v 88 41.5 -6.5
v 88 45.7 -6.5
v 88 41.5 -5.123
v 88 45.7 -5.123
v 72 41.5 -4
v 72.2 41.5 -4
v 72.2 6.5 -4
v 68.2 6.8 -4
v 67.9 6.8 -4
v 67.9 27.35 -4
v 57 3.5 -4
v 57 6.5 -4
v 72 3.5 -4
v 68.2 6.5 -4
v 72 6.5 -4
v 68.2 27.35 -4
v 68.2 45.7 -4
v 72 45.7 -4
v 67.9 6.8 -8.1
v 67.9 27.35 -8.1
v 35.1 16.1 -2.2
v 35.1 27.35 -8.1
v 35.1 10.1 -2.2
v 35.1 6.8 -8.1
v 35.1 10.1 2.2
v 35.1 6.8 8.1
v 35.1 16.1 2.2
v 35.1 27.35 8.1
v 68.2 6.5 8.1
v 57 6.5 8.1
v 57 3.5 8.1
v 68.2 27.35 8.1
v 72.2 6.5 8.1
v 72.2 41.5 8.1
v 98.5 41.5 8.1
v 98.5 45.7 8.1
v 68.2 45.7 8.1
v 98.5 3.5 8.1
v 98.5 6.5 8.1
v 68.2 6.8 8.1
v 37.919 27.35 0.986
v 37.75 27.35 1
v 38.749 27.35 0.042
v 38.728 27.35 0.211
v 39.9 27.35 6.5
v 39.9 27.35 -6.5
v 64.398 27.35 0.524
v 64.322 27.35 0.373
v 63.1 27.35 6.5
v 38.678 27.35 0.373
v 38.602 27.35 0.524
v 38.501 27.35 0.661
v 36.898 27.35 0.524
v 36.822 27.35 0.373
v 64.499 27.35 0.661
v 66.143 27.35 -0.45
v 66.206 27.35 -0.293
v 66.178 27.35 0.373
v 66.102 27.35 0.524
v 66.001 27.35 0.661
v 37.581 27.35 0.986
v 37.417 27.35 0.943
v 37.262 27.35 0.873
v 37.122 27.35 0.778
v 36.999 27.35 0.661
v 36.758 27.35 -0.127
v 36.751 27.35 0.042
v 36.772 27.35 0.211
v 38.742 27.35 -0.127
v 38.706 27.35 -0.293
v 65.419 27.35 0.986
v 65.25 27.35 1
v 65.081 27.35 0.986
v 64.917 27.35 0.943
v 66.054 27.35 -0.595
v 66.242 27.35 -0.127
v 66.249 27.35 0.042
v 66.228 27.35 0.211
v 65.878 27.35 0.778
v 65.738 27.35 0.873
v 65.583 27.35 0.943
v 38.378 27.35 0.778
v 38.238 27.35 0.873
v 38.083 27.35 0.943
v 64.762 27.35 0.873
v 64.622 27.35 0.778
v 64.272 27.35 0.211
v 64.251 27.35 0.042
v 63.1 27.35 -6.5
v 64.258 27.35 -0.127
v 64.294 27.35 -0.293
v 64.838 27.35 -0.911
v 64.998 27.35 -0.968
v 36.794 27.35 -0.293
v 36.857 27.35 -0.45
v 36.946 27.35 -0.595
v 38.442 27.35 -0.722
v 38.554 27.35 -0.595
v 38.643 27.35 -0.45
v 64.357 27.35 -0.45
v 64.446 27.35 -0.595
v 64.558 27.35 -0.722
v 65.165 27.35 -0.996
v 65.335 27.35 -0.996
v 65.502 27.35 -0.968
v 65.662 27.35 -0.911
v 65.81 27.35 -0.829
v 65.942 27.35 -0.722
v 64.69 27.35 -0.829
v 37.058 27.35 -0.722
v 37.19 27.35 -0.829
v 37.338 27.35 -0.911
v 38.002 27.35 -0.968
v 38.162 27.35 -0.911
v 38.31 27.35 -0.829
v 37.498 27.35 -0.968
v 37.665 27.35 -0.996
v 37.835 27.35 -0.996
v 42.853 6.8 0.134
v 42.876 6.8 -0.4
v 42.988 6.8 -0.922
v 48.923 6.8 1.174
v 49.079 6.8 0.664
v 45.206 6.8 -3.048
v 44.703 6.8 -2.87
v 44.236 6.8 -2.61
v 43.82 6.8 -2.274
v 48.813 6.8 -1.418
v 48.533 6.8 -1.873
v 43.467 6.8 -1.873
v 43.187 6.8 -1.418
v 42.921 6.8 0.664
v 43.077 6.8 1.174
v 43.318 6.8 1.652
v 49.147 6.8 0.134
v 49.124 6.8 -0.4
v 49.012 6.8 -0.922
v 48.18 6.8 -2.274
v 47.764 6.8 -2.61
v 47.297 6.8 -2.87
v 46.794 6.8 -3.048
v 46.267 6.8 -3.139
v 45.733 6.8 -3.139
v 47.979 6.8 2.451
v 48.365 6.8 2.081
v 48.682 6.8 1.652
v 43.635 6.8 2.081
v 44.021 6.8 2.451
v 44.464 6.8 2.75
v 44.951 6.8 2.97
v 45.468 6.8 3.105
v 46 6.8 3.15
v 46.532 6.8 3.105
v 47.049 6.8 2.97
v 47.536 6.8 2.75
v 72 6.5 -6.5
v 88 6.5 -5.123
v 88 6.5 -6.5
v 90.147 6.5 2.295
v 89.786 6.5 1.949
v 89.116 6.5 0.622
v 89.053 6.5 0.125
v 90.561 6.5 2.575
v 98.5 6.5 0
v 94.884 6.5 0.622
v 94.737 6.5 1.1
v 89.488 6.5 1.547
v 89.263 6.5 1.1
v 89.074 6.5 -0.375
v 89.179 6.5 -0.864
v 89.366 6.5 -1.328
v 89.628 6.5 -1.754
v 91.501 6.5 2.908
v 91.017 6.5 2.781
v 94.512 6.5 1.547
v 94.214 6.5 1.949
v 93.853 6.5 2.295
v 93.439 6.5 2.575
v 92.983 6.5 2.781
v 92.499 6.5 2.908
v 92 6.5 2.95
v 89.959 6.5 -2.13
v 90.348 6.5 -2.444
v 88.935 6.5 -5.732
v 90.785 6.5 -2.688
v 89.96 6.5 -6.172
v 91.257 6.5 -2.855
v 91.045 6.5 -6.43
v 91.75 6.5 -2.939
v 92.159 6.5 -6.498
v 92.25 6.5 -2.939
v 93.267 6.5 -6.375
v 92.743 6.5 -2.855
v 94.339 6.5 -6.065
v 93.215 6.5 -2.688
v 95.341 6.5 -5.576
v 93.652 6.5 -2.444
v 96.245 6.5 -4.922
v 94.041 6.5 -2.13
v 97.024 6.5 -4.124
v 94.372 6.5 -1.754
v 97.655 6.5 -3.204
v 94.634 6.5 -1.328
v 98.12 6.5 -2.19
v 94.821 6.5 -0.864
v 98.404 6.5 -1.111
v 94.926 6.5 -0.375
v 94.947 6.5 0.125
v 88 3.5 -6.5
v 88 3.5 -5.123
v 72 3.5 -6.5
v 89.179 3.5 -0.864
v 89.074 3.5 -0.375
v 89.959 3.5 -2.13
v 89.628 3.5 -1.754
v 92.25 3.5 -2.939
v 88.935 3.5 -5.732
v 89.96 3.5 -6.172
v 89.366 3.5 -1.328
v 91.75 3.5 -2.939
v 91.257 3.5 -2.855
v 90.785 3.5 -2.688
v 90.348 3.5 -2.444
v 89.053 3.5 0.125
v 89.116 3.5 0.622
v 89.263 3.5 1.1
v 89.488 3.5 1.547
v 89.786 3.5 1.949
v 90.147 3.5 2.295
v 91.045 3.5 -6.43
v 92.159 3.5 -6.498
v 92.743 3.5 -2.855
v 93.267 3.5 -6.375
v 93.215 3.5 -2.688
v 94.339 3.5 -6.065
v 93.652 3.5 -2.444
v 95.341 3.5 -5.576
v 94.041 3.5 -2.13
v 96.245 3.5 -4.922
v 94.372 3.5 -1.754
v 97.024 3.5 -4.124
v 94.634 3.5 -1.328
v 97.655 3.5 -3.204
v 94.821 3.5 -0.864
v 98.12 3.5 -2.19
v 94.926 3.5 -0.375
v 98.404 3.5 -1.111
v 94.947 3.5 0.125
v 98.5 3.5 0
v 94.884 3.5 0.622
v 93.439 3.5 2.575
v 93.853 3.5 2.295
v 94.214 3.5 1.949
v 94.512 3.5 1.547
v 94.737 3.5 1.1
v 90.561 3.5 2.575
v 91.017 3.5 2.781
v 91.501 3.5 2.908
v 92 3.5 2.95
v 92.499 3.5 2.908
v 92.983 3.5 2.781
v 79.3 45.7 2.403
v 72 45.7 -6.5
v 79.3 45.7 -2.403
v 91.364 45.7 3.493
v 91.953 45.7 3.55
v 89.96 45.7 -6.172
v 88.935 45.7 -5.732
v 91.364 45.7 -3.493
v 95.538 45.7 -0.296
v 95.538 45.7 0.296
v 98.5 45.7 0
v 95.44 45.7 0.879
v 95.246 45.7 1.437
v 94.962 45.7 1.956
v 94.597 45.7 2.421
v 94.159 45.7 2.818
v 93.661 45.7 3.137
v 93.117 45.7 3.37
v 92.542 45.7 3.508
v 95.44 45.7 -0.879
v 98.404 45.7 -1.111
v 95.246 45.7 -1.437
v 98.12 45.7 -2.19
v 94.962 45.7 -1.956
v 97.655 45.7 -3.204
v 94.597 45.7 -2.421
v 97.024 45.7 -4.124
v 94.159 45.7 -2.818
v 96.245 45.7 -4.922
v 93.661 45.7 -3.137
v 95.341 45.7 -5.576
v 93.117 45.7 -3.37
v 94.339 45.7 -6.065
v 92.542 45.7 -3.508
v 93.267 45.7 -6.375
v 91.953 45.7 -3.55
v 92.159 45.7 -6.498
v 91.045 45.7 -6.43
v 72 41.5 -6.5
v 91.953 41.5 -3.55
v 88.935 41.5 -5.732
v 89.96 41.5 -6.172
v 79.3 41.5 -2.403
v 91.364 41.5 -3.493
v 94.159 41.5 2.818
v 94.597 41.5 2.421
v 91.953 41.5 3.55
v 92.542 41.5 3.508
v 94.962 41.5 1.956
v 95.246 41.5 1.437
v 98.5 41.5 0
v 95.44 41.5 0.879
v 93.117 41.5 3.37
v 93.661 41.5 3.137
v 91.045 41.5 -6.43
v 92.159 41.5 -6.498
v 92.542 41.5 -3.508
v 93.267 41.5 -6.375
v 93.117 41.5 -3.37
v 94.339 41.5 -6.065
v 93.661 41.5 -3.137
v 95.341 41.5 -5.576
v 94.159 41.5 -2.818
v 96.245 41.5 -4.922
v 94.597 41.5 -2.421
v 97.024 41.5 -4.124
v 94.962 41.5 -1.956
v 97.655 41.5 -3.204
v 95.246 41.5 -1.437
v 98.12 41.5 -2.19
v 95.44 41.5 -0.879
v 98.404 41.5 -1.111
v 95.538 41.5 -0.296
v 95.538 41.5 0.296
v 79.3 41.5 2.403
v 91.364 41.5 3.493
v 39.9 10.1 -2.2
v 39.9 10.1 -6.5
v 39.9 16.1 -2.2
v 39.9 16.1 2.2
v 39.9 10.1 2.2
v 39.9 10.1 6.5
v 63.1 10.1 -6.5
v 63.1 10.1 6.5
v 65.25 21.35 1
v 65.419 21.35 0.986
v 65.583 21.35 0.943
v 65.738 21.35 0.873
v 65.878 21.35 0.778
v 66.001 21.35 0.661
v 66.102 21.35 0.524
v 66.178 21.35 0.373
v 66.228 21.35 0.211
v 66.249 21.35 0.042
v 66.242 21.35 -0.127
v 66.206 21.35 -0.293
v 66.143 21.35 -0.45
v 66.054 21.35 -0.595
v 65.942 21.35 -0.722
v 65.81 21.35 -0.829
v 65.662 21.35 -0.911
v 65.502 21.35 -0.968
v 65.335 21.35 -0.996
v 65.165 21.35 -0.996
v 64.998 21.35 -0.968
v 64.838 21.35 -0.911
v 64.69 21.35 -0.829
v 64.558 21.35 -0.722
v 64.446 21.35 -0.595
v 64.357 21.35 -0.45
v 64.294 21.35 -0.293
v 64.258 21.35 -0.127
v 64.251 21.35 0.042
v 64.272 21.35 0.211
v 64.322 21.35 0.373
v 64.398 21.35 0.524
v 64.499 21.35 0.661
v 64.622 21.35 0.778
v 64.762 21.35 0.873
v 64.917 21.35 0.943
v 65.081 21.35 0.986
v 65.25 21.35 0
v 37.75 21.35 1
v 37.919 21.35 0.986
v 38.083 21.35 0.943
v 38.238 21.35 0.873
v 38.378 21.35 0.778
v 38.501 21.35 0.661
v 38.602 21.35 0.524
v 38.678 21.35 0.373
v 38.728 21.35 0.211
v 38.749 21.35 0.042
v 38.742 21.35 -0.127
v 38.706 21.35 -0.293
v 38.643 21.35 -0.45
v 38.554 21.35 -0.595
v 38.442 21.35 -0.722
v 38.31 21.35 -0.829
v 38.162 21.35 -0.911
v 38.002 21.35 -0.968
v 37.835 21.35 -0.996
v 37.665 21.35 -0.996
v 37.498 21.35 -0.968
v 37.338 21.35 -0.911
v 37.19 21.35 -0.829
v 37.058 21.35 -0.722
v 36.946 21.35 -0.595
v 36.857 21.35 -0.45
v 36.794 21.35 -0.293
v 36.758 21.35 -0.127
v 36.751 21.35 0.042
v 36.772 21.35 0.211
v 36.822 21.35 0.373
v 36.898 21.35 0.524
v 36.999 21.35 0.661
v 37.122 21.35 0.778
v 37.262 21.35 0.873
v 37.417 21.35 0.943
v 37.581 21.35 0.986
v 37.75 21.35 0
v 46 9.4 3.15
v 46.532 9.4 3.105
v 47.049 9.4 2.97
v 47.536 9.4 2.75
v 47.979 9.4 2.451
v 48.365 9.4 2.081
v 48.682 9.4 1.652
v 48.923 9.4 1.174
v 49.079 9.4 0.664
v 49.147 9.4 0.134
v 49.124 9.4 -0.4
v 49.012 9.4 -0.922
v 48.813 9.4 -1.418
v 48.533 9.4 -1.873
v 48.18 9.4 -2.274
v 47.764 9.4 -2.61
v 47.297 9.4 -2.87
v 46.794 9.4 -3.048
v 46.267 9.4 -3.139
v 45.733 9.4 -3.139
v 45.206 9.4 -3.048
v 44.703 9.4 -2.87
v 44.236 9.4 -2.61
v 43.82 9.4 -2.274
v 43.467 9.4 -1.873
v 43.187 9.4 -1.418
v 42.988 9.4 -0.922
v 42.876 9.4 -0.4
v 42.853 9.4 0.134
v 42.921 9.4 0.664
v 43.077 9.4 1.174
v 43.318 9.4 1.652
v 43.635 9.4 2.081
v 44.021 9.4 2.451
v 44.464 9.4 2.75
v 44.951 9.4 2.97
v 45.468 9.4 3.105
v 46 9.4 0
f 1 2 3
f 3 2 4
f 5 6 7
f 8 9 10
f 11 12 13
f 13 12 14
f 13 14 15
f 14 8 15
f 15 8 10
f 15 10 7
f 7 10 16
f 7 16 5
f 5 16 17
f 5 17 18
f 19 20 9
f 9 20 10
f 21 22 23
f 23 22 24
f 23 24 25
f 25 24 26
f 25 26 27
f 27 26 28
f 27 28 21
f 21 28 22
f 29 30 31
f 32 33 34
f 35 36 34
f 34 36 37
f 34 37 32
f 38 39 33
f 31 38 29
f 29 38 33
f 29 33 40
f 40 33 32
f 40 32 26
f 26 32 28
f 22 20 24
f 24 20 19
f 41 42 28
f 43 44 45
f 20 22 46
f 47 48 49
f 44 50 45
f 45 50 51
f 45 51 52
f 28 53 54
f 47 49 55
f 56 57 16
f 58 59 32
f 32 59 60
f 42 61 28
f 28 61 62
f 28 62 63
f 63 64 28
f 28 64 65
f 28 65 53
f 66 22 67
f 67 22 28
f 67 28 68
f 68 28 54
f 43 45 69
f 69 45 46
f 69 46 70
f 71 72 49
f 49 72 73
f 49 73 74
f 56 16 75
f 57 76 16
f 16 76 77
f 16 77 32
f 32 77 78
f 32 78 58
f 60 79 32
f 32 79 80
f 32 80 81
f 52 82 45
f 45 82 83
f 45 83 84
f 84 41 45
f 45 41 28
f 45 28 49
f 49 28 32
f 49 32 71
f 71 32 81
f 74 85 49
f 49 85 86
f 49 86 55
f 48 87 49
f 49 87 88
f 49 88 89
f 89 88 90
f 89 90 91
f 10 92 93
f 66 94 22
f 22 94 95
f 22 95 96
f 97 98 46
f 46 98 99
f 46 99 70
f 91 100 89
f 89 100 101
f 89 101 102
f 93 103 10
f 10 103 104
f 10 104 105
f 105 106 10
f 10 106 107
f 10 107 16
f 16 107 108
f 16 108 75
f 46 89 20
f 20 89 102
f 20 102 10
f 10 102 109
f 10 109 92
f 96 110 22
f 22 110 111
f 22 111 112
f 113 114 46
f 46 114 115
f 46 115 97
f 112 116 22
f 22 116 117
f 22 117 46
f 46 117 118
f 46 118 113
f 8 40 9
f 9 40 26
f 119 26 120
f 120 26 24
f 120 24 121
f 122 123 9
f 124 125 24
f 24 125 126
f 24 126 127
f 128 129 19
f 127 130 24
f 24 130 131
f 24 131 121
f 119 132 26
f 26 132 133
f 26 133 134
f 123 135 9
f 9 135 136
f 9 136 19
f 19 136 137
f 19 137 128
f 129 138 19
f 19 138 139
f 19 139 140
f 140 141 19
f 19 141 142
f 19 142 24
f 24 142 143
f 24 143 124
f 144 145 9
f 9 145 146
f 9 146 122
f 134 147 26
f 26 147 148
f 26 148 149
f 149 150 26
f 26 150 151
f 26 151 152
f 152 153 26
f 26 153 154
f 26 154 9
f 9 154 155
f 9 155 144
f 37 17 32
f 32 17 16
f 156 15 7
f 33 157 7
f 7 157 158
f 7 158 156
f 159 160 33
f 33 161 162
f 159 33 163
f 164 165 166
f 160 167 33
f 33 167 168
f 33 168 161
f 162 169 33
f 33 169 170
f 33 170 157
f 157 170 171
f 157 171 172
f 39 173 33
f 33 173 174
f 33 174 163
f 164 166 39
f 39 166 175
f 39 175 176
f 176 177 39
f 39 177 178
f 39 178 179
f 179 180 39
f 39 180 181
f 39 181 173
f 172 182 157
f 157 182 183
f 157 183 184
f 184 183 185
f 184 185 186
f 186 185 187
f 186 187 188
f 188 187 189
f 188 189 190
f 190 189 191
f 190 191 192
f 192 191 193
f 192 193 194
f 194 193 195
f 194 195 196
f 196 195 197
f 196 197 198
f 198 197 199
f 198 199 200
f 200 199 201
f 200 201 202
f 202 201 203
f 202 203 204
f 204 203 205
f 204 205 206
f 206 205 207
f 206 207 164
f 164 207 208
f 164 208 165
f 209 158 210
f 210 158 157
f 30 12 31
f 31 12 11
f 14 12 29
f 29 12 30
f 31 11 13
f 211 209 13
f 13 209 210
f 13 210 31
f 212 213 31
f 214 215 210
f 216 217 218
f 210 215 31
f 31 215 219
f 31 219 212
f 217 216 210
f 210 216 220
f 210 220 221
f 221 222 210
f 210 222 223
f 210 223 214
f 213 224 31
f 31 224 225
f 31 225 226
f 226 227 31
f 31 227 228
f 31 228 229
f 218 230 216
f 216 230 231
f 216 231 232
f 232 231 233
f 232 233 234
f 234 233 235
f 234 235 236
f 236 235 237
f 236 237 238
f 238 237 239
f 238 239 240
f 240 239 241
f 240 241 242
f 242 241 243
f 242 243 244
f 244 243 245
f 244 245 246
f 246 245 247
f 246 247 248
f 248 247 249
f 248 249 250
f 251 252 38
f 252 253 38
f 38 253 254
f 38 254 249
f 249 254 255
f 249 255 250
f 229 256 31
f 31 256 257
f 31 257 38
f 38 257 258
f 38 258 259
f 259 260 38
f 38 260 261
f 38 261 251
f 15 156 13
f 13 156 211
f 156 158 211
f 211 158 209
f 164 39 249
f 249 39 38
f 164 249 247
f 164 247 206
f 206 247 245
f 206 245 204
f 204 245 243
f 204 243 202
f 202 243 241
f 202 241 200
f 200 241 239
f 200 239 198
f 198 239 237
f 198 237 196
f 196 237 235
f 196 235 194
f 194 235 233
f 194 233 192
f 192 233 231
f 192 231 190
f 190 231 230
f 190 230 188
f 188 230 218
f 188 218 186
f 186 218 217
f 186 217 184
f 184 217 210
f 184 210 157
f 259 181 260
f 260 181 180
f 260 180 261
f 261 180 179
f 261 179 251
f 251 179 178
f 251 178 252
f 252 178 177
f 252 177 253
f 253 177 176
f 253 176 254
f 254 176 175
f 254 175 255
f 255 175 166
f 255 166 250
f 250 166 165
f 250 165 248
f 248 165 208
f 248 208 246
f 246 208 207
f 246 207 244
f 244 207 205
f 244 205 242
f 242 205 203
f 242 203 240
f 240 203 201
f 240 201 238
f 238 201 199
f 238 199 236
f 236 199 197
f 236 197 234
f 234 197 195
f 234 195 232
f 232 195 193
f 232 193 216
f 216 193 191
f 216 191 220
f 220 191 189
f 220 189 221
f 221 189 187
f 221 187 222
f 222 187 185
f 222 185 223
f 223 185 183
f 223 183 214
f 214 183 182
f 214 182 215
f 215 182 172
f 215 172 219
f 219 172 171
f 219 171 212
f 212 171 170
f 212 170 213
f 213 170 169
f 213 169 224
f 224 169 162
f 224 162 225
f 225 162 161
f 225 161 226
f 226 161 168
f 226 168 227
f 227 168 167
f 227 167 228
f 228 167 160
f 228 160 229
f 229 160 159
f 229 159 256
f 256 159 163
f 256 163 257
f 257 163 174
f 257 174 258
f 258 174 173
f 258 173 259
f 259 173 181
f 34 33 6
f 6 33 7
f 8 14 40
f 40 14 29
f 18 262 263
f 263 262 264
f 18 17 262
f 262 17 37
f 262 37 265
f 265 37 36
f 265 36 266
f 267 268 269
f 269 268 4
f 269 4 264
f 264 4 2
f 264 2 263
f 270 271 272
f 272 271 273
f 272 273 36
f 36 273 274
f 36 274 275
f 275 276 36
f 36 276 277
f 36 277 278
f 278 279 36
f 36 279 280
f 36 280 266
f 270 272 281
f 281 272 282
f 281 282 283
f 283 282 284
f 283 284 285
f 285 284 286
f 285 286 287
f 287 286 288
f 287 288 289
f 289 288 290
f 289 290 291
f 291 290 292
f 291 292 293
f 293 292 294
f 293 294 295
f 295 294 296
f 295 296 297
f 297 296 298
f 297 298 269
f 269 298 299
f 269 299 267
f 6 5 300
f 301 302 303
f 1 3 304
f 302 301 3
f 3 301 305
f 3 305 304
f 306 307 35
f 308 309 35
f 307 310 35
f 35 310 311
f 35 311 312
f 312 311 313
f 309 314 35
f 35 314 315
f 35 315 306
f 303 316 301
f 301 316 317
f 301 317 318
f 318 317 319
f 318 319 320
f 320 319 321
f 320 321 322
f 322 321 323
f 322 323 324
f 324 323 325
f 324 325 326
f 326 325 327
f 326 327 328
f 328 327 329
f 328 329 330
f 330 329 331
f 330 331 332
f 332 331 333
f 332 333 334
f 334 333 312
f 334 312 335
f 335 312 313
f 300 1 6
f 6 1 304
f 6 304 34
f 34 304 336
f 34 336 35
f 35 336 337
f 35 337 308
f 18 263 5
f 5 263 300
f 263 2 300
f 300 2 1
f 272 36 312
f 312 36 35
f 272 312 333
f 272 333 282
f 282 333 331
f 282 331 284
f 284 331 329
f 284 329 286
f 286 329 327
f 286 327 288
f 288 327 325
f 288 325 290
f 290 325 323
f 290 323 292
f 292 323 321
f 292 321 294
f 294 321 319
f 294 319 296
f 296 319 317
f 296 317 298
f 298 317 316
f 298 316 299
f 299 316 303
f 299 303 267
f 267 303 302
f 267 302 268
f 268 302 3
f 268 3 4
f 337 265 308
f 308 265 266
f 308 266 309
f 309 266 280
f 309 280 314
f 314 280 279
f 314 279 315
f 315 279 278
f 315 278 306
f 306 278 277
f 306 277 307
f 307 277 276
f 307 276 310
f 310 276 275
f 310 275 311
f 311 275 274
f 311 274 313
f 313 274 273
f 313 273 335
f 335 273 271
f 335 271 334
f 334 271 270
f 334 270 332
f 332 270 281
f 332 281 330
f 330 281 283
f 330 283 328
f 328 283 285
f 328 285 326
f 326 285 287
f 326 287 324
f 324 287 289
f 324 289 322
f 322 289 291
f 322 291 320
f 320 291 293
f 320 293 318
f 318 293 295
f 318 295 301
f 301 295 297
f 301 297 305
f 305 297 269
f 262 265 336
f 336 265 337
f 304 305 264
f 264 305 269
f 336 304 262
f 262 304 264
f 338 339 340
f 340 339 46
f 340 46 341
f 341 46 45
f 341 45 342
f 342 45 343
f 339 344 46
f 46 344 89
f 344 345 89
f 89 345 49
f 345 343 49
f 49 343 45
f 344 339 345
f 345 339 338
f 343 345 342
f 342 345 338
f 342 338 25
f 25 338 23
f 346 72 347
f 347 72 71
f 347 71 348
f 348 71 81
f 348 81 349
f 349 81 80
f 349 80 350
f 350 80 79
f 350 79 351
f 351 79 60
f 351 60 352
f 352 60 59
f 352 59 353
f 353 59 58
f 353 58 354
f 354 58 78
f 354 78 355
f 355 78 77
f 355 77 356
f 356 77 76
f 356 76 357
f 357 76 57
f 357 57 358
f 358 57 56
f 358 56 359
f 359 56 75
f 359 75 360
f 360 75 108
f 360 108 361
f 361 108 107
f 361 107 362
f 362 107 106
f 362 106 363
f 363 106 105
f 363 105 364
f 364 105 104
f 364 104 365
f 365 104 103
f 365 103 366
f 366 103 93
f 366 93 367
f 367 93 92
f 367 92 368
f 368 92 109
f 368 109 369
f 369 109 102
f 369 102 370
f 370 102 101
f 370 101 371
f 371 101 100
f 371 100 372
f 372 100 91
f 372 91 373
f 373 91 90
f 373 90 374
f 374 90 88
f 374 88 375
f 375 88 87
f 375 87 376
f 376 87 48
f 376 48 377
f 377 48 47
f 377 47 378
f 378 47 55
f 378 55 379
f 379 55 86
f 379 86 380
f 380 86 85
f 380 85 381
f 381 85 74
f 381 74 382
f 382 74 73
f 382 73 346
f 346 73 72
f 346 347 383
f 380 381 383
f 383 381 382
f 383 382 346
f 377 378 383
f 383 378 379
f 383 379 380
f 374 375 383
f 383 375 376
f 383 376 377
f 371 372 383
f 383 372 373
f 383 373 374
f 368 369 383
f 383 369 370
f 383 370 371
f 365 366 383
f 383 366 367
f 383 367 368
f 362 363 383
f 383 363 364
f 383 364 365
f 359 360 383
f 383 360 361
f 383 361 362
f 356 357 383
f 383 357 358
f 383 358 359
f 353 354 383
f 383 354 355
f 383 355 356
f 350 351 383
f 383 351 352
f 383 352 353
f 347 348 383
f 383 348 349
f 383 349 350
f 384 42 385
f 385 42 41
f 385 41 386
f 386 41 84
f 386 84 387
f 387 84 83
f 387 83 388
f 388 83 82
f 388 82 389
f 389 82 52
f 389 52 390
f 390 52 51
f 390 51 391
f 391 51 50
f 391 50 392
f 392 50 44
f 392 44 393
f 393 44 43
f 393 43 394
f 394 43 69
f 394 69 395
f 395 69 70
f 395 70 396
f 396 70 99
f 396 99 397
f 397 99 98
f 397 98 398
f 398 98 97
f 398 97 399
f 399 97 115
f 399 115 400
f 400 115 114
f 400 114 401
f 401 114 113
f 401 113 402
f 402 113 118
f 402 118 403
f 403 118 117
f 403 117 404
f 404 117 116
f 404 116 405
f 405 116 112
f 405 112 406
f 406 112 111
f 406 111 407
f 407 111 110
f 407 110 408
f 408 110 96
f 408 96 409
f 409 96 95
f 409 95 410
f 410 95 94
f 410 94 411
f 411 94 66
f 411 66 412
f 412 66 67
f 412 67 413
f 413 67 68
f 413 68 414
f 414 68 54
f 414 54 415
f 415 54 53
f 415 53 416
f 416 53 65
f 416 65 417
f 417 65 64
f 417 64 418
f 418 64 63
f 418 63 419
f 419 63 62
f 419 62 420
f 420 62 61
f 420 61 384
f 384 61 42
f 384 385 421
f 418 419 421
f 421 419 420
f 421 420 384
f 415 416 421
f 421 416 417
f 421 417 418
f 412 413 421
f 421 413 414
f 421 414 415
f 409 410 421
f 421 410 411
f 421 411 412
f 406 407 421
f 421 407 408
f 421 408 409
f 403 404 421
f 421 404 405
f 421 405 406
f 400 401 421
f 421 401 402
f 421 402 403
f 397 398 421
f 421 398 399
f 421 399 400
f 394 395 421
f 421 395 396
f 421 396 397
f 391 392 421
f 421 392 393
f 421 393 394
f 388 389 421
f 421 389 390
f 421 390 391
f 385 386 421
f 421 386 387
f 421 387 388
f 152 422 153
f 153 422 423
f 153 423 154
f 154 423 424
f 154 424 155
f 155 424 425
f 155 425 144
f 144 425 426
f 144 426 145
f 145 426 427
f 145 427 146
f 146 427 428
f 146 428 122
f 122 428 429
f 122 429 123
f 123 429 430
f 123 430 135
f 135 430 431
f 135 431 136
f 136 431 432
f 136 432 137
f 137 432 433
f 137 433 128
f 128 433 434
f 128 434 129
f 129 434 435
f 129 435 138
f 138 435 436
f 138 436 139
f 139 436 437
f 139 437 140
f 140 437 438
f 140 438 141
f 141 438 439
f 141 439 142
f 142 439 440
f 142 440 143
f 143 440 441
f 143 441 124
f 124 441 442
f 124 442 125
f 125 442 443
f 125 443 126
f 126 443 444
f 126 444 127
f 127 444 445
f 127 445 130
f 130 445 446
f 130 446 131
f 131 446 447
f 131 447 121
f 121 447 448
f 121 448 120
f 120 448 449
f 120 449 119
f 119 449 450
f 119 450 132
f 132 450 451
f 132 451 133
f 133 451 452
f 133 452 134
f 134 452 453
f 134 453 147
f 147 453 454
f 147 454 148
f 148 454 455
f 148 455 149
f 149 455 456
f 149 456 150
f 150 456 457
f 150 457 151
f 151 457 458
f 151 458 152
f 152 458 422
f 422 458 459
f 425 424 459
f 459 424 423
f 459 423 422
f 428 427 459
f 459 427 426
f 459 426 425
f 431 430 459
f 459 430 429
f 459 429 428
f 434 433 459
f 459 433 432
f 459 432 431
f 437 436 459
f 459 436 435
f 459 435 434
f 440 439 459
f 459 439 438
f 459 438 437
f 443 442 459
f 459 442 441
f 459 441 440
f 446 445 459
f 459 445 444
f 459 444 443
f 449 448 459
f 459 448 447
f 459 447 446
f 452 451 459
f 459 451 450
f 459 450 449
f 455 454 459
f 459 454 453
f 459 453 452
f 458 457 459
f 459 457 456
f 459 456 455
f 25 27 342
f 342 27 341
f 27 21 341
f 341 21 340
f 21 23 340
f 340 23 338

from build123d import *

# Parameters (mm, degrees)
BOSS_EXTRUDE1_START  = 17.075
SKETCH1_W            = 32.8
SKETCH1_H            = 16.2
BOSS_EXTRUDE1_DEPTH  = 10.275
BOSS_EXTRUDE2_START  = 5
SKETCH2_W            = 31
SKETCH2_H            = 12.1
BOSS_EXTRUDE2_DEPTH  = 1.5
BOSS_EXTRUDE3_START  = 5
SKETCH3_W            = 16
SKETCH3_H            = 14.6
BOSS_EXTRUDE3_DEPTH  = 1.5
BOSS_EXTRUDE4_START  = 5
SKETCH4_W            = 10.5
SKETCH4_H            = 8.1
BOSS_EXTRUDE4_DEPTH  = 1.5
BOSS_EXTRUDE5_START  = 5
SKETCH5_R            = 6.5
BOSS_EXTRUDE5_DEPTH  = 1.5
CUT_EXTRUDE1_START   = 5
SKETCH6_R            = 2.95
CUT_EXTRUDE1_DEPTH   = 1.5
BOSS_EXTRUDE6_START  = 70.2
SKETCH7_W            = 12.1
SKETCH7_H            = 42.2
BOSS_EXTRUDE6_DEPTH  = 2
BOSS_EXTRUDE7_START  = 68.05
SKETCH8_W            = 12.1
SKETCH8_H            = 20.55
BOSS_EXTRUDE7_DEPTH  = 1.15
BOSS_EXTRUDE8_START  = 43.6
SKETCH9_W            = 19.8
SKETCH9_H            = 12.1
BOSS_EXTRUDE8_DEPTH  = 2.1
BOSS_EXTRUDE9_START  = 43.6
SKETCH10_W           = 16
SKETCH10_H           = 14.6
BOSS_EXTRUDE9_DEPTH  = 2.1
BOSS_EXTRUDE10_START = 43.6
SKETCH11_W           = 10.5
SKETCH11_H           = 8.1
BOSS_EXTRUDE10_DEPTH = 2.1
BOSS_EXTRUDE11_START = 43.6
SKETCH12_R           = 6.5
BOSS_EXTRUDE11_DEPTH = 2.1
CUT_EXTRUDE2_START   = 43.6
SKETCH13_R           = 3.55
CUT_EXTRUDE2_DEPTH   = 2.1
CUT_EXTRUDE3_START   = 43.6
CUT_EXTRUDE3_DEPTH   = 2.1
CUT_EXTRUDE4_START   = 18.725
SKETCH15_W           = 23.2
SKETCH15_H           = 13
CUT_EXTRUDE4_DEPTH   = 8.625
CUT_EXTRUDE5_START   = 24.35
SKETCH16_R           = 1
CUT_EXTRUDE5_DEPTH   = 3
CUT_EXTRUDE6_START   = 24.35
SKETCH17_R           = 1
CUT_EXTRUDE6_DEPTH   = 3
CUT_EXTRUDE7_START   = 8.1
SKETCH18_R           = 3.15
CUT_EXTRUDE7_DEPTH   = 1.3
CUT_EXTRUDE8_START   = 37.5
SKETCH19_W           = 4.4
SKETCH19_H           = 6
CUT_EXTRUDE8_DEPTH   = 2.4


with BuildPart() as part:
    # Sketch1 → Boss-Extrude1 (new, symmetric)
    with BuildSketch(Plane(origin=(0, 0, 0), x_dir=(1, 0, 0), z_dir=(0, 1, 0)).offset(BOSS_EXTRUDE1_START)):
        with Locations((51.5, 0)):
            Rectangle(SKETCH1_W, SKETCH1_H)
    extrude(amount=BOSS_EXTRUDE1_DEPTH, both=True)



with BuildPart() as body_2:
    # Sketch2 → Boss-Extrude2 (new, symmetric)
    with BuildSketch(Plane(origin=(0, 0, 0), x_dir=(1, 0, 0), z_dir=(0, 1, 0)).offset(BOSS_EXTRUDE2_START)):
        with Locations((72.5, -2.05)):
            Rectangle(SKETCH2_W, SKETCH2_H)
    extrude(amount=BOSS_EXTRUDE2_DEPTH, both=True)

    # Sketch3 → Boss-Extrude3 (add, symmetric)
    with BuildSketch(Plane(origin=(0, 0, 0), x_dir=(1, 0, 0), z_dir=(0, 1, 0)).offset(BOSS_EXTRUDE3_START)):
        with Locations((80, -0.8)):
            Rectangle(SKETCH3_W, SKETCH3_H)
    extrude(amount=BOSS_EXTRUDE3_DEPTH, both=True)

    # Sketch4 → Boss-Extrude4 (add, symmetric)
    with BuildSketch(Plane(origin=(0, 0, 0), x_dir=(1, 0, 0), z_dir=(0, 1, 0)).offset(BOSS_EXTRUDE4_START)):
        with Locations((93.25, -4.05)):
            Rectangle(SKETCH4_W, SKETCH4_H)
    extrude(amount=BOSS_EXTRUDE4_DEPTH, both=True)

    # Sketch5 → Boss-Extrude5 (add, symmetric)
    with BuildSketch(Plane(origin=(0, 0, 0), x_dir=(1, 0, 0), z_dir=(0, 1, 0)).offset(BOSS_EXTRUDE5_START)):
        with Locations((92, 0)):
            Circle(SKETCH5_R)
    extrude(amount=BOSS_EXTRUDE5_DEPTH, both=True)

    # Sketch6 → Cut-Extrude1 (cut, symmetric)
    with BuildSketch(Plane(origin=(0, 0, 0), x_dir=(1, 0, 0), z_dir=(0, 1, 0)).offset(CUT_EXTRUDE1_START)):
        with Locations(Location((92, 0, 0), (0, 0, 270))):
            Circle(SKETCH6_R)
    extrude(amount=CUT_EXTRUDE1_DEPTH, both=True, mode=Mode.SUBTRACT)

    # Sketch7 → Boss-Extrude6 (add, symmetric)
    with BuildSketch(Plane(origin=(0, 0, 0), x_dir=(0, 0, -1), z_dir=(1, 0, 0)).offset(BOSS_EXTRUDE6_START)):
        with Locations((-2.05, 24.6)):
            Rectangle(SKETCH7_W, SKETCH7_H)
    extrude(amount=BOSS_EXTRUDE6_DEPTH, both=True)


with BuildPart() as part_1:
    add(part.part)

    add(body_2.part)  # Boss-Extrude7 merges body 2
    # Sketch8 → Boss-Extrude7 (add, symmetric)
    with BuildSketch(Plane(origin=(0, 0, 0), x_dir=(0, 0, -1), z_dir=(1, 0, 0)).offset(BOSS_EXTRUDE7_START)):
        with Locations((-2.05, 17.075)):
            Rectangle(SKETCH8_W, SKETCH8_H)
    extrude(amount=BOSS_EXTRUDE7_DEPTH, both=True)

    # Sketch9 → Boss-Extrude8 (add, symmetric)
    with BuildSketch(Plane(origin=(0, 0, 0), x_dir=(1, 0, 0), z_dir=(0, 1, 0)).offset(BOSS_EXTRUDE8_START)):
        with Locations((78.1, -2.05)):
            Rectangle(SKETCH9_W, SKETCH9_H)
    extrude(amount=BOSS_EXTRUDE8_DEPTH, both=True)

    # Sketch10 → Boss-Extrude9 (add, symmetric)
    with BuildSketch(Plane(origin=(0, 0, 0), x_dir=(1, 0, 0), z_dir=(0, 1, 0)).offset(BOSS_EXTRUDE9_START)):
        with Locations((80, -0.8)):
            Rectangle(SKETCH10_W, SKETCH10_H)
    extrude(amount=BOSS_EXTRUDE9_DEPTH, both=True)

    # Sketch11 → Boss-Extrude10 (add, symmetric)
    with BuildSketch(Plane(origin=(0, 0, 0), x_dir=(1, 0, 0), z_dir=(0, 1, 0)).offset(BOSS_EXTRUDE10_START)):
        with Locations((93.25, -4.05)):
            Rectangle(SKETCH11_W, SKETCH11_H)
    extrude(amount=BOSS_EXTRUDE10_DEPTH, both=True)

    # Sketch12 → Boss-Extrude11 (add, symmetric)
    with BuildSketch(Plane(origin=(0, 0, 0), x_dir=(1, 0, 0), z_dir=(0, 1, 0)).offset(BOSS_EXTRUDE11_START)):
        with Locations((92, 0)):
            Circle(SKETCH12_R)
    extrude(amount=BOSS_EXTRUDE11_DEPTH, both=True)

    # Sketch13 → Cut-Extrude2 (cut, symmetric)
    with BuildSketch(Plane(origin=(0, 0, 0), x_dir=(1, 0, 0), z_dir=(0, 1, 0)).offset(CUT_EXTRUDE2_START)):
        with Locations(Location((92, 0, 0), (0, 0, 270))):
            Circle(SKETCH13_R)
    extrude(amount=CUT_EXTRUDE2_DEPTH, both=True, mode=Mode.SUBTRACT)

    # Sketch14 → Cut-Extrude3 (cut, symmetric)
    with BuildSketch(Plane(origin=(0, 0, 0), x_dir=(1, 0, 0), z_dir=(0, 1, 0)).offset(CUT_EXTRUDE3_START)):
        Polygon((92, 3.55), (79.3, 2.403281405), (79.3, -2.403281405), (92, -3.55), align=None)
    extrude(amount=CUT_EXTRUDE3_DEPTH, both=True, mode=Mode.SUBTRACT)

    # Sketch15 → Cut-Extrude4 (cut, symmetric)
    with BuildSketch(Plane(origin=(0, 0, 0), x_dir=(1, 0, 0), z_dir=(0, 1, 0)).offset(CUT_EXTRUDE4_START)):
        with Locations((51.5, 0)):
            Rectangle(SKETCH15_W, SKETCH15_H)
    extrude(amount=CUT_EXTRUDE4_DEPTH, both=True, mode=Mode.SUBTRACT)

    # Sketch16 → Cut-Extrude5 (cut, symmetric)
    with BuildSketch(Plane(origin=(0, 0, 0), x_dir=(1, 0, 0), z_dir=(0, 1, 0)).offset(CUT_EXTRUDE5_START)):
        with Locations(Location((65.25, 0, 0), (0, 0, 270))):
            Circle(SKETCH16_R)
    extrude(amount=CUT_EXTRUDE5_DEPTH, both=True, mode=Mode.SUBTRACT)

    # Sketch17 → Cut-Extrude6 (cut, symmetric)
    with BuildSketch(Plane(origin=(0, 0, 0), x_dir=(1, 0, 0), z_dir=(0, 1, 0)).offset(CUT_EXTRUDE6_START)):
        with Locations(Location((37.75, 0, 0), (0, 0, 270))):
            Circle(SKETCH17_R)
    extrude(amount=CUT_EXTRUDE6_DEPTH, both=True, mode=Mode.SUBTRACT)

    # Sketch18 → Cut-Extrude7 (cut, symmetric)
    with BuildSketch(Plane(origin=(0, 0, 0), x_dir=(1, 0, 0), z_dir=(0, 1, 0)).offset(CUT_EXTRUDE7_START)):
        with Locations(Location((46, 0, 0), (0, 0, 270))):
            Circle(SKETCH18_R)
    extrude(amount=CUT_EXTRUDE7_DEPTH, both=True, mode=Mode.SUBTRACT)

    # Sketch19 → Cut-Extrude8 (cut, symmetric)
    with BuildSketch(Plane(origin=(0, 0, 0), x_dir=(0, 0, -1), z_dir=(1, 0, 0)).offset(CUT_EXTRUDE8_START)):
        with Locations((0, 13.1)):
            Rectangle(SKETCH19_W, SKETCH19_H)
    extrude(amount=CUT_EXTRUDE8_DEPTH, both=True, mode=Mode.SUBTRACT)


solid = part_1.part
